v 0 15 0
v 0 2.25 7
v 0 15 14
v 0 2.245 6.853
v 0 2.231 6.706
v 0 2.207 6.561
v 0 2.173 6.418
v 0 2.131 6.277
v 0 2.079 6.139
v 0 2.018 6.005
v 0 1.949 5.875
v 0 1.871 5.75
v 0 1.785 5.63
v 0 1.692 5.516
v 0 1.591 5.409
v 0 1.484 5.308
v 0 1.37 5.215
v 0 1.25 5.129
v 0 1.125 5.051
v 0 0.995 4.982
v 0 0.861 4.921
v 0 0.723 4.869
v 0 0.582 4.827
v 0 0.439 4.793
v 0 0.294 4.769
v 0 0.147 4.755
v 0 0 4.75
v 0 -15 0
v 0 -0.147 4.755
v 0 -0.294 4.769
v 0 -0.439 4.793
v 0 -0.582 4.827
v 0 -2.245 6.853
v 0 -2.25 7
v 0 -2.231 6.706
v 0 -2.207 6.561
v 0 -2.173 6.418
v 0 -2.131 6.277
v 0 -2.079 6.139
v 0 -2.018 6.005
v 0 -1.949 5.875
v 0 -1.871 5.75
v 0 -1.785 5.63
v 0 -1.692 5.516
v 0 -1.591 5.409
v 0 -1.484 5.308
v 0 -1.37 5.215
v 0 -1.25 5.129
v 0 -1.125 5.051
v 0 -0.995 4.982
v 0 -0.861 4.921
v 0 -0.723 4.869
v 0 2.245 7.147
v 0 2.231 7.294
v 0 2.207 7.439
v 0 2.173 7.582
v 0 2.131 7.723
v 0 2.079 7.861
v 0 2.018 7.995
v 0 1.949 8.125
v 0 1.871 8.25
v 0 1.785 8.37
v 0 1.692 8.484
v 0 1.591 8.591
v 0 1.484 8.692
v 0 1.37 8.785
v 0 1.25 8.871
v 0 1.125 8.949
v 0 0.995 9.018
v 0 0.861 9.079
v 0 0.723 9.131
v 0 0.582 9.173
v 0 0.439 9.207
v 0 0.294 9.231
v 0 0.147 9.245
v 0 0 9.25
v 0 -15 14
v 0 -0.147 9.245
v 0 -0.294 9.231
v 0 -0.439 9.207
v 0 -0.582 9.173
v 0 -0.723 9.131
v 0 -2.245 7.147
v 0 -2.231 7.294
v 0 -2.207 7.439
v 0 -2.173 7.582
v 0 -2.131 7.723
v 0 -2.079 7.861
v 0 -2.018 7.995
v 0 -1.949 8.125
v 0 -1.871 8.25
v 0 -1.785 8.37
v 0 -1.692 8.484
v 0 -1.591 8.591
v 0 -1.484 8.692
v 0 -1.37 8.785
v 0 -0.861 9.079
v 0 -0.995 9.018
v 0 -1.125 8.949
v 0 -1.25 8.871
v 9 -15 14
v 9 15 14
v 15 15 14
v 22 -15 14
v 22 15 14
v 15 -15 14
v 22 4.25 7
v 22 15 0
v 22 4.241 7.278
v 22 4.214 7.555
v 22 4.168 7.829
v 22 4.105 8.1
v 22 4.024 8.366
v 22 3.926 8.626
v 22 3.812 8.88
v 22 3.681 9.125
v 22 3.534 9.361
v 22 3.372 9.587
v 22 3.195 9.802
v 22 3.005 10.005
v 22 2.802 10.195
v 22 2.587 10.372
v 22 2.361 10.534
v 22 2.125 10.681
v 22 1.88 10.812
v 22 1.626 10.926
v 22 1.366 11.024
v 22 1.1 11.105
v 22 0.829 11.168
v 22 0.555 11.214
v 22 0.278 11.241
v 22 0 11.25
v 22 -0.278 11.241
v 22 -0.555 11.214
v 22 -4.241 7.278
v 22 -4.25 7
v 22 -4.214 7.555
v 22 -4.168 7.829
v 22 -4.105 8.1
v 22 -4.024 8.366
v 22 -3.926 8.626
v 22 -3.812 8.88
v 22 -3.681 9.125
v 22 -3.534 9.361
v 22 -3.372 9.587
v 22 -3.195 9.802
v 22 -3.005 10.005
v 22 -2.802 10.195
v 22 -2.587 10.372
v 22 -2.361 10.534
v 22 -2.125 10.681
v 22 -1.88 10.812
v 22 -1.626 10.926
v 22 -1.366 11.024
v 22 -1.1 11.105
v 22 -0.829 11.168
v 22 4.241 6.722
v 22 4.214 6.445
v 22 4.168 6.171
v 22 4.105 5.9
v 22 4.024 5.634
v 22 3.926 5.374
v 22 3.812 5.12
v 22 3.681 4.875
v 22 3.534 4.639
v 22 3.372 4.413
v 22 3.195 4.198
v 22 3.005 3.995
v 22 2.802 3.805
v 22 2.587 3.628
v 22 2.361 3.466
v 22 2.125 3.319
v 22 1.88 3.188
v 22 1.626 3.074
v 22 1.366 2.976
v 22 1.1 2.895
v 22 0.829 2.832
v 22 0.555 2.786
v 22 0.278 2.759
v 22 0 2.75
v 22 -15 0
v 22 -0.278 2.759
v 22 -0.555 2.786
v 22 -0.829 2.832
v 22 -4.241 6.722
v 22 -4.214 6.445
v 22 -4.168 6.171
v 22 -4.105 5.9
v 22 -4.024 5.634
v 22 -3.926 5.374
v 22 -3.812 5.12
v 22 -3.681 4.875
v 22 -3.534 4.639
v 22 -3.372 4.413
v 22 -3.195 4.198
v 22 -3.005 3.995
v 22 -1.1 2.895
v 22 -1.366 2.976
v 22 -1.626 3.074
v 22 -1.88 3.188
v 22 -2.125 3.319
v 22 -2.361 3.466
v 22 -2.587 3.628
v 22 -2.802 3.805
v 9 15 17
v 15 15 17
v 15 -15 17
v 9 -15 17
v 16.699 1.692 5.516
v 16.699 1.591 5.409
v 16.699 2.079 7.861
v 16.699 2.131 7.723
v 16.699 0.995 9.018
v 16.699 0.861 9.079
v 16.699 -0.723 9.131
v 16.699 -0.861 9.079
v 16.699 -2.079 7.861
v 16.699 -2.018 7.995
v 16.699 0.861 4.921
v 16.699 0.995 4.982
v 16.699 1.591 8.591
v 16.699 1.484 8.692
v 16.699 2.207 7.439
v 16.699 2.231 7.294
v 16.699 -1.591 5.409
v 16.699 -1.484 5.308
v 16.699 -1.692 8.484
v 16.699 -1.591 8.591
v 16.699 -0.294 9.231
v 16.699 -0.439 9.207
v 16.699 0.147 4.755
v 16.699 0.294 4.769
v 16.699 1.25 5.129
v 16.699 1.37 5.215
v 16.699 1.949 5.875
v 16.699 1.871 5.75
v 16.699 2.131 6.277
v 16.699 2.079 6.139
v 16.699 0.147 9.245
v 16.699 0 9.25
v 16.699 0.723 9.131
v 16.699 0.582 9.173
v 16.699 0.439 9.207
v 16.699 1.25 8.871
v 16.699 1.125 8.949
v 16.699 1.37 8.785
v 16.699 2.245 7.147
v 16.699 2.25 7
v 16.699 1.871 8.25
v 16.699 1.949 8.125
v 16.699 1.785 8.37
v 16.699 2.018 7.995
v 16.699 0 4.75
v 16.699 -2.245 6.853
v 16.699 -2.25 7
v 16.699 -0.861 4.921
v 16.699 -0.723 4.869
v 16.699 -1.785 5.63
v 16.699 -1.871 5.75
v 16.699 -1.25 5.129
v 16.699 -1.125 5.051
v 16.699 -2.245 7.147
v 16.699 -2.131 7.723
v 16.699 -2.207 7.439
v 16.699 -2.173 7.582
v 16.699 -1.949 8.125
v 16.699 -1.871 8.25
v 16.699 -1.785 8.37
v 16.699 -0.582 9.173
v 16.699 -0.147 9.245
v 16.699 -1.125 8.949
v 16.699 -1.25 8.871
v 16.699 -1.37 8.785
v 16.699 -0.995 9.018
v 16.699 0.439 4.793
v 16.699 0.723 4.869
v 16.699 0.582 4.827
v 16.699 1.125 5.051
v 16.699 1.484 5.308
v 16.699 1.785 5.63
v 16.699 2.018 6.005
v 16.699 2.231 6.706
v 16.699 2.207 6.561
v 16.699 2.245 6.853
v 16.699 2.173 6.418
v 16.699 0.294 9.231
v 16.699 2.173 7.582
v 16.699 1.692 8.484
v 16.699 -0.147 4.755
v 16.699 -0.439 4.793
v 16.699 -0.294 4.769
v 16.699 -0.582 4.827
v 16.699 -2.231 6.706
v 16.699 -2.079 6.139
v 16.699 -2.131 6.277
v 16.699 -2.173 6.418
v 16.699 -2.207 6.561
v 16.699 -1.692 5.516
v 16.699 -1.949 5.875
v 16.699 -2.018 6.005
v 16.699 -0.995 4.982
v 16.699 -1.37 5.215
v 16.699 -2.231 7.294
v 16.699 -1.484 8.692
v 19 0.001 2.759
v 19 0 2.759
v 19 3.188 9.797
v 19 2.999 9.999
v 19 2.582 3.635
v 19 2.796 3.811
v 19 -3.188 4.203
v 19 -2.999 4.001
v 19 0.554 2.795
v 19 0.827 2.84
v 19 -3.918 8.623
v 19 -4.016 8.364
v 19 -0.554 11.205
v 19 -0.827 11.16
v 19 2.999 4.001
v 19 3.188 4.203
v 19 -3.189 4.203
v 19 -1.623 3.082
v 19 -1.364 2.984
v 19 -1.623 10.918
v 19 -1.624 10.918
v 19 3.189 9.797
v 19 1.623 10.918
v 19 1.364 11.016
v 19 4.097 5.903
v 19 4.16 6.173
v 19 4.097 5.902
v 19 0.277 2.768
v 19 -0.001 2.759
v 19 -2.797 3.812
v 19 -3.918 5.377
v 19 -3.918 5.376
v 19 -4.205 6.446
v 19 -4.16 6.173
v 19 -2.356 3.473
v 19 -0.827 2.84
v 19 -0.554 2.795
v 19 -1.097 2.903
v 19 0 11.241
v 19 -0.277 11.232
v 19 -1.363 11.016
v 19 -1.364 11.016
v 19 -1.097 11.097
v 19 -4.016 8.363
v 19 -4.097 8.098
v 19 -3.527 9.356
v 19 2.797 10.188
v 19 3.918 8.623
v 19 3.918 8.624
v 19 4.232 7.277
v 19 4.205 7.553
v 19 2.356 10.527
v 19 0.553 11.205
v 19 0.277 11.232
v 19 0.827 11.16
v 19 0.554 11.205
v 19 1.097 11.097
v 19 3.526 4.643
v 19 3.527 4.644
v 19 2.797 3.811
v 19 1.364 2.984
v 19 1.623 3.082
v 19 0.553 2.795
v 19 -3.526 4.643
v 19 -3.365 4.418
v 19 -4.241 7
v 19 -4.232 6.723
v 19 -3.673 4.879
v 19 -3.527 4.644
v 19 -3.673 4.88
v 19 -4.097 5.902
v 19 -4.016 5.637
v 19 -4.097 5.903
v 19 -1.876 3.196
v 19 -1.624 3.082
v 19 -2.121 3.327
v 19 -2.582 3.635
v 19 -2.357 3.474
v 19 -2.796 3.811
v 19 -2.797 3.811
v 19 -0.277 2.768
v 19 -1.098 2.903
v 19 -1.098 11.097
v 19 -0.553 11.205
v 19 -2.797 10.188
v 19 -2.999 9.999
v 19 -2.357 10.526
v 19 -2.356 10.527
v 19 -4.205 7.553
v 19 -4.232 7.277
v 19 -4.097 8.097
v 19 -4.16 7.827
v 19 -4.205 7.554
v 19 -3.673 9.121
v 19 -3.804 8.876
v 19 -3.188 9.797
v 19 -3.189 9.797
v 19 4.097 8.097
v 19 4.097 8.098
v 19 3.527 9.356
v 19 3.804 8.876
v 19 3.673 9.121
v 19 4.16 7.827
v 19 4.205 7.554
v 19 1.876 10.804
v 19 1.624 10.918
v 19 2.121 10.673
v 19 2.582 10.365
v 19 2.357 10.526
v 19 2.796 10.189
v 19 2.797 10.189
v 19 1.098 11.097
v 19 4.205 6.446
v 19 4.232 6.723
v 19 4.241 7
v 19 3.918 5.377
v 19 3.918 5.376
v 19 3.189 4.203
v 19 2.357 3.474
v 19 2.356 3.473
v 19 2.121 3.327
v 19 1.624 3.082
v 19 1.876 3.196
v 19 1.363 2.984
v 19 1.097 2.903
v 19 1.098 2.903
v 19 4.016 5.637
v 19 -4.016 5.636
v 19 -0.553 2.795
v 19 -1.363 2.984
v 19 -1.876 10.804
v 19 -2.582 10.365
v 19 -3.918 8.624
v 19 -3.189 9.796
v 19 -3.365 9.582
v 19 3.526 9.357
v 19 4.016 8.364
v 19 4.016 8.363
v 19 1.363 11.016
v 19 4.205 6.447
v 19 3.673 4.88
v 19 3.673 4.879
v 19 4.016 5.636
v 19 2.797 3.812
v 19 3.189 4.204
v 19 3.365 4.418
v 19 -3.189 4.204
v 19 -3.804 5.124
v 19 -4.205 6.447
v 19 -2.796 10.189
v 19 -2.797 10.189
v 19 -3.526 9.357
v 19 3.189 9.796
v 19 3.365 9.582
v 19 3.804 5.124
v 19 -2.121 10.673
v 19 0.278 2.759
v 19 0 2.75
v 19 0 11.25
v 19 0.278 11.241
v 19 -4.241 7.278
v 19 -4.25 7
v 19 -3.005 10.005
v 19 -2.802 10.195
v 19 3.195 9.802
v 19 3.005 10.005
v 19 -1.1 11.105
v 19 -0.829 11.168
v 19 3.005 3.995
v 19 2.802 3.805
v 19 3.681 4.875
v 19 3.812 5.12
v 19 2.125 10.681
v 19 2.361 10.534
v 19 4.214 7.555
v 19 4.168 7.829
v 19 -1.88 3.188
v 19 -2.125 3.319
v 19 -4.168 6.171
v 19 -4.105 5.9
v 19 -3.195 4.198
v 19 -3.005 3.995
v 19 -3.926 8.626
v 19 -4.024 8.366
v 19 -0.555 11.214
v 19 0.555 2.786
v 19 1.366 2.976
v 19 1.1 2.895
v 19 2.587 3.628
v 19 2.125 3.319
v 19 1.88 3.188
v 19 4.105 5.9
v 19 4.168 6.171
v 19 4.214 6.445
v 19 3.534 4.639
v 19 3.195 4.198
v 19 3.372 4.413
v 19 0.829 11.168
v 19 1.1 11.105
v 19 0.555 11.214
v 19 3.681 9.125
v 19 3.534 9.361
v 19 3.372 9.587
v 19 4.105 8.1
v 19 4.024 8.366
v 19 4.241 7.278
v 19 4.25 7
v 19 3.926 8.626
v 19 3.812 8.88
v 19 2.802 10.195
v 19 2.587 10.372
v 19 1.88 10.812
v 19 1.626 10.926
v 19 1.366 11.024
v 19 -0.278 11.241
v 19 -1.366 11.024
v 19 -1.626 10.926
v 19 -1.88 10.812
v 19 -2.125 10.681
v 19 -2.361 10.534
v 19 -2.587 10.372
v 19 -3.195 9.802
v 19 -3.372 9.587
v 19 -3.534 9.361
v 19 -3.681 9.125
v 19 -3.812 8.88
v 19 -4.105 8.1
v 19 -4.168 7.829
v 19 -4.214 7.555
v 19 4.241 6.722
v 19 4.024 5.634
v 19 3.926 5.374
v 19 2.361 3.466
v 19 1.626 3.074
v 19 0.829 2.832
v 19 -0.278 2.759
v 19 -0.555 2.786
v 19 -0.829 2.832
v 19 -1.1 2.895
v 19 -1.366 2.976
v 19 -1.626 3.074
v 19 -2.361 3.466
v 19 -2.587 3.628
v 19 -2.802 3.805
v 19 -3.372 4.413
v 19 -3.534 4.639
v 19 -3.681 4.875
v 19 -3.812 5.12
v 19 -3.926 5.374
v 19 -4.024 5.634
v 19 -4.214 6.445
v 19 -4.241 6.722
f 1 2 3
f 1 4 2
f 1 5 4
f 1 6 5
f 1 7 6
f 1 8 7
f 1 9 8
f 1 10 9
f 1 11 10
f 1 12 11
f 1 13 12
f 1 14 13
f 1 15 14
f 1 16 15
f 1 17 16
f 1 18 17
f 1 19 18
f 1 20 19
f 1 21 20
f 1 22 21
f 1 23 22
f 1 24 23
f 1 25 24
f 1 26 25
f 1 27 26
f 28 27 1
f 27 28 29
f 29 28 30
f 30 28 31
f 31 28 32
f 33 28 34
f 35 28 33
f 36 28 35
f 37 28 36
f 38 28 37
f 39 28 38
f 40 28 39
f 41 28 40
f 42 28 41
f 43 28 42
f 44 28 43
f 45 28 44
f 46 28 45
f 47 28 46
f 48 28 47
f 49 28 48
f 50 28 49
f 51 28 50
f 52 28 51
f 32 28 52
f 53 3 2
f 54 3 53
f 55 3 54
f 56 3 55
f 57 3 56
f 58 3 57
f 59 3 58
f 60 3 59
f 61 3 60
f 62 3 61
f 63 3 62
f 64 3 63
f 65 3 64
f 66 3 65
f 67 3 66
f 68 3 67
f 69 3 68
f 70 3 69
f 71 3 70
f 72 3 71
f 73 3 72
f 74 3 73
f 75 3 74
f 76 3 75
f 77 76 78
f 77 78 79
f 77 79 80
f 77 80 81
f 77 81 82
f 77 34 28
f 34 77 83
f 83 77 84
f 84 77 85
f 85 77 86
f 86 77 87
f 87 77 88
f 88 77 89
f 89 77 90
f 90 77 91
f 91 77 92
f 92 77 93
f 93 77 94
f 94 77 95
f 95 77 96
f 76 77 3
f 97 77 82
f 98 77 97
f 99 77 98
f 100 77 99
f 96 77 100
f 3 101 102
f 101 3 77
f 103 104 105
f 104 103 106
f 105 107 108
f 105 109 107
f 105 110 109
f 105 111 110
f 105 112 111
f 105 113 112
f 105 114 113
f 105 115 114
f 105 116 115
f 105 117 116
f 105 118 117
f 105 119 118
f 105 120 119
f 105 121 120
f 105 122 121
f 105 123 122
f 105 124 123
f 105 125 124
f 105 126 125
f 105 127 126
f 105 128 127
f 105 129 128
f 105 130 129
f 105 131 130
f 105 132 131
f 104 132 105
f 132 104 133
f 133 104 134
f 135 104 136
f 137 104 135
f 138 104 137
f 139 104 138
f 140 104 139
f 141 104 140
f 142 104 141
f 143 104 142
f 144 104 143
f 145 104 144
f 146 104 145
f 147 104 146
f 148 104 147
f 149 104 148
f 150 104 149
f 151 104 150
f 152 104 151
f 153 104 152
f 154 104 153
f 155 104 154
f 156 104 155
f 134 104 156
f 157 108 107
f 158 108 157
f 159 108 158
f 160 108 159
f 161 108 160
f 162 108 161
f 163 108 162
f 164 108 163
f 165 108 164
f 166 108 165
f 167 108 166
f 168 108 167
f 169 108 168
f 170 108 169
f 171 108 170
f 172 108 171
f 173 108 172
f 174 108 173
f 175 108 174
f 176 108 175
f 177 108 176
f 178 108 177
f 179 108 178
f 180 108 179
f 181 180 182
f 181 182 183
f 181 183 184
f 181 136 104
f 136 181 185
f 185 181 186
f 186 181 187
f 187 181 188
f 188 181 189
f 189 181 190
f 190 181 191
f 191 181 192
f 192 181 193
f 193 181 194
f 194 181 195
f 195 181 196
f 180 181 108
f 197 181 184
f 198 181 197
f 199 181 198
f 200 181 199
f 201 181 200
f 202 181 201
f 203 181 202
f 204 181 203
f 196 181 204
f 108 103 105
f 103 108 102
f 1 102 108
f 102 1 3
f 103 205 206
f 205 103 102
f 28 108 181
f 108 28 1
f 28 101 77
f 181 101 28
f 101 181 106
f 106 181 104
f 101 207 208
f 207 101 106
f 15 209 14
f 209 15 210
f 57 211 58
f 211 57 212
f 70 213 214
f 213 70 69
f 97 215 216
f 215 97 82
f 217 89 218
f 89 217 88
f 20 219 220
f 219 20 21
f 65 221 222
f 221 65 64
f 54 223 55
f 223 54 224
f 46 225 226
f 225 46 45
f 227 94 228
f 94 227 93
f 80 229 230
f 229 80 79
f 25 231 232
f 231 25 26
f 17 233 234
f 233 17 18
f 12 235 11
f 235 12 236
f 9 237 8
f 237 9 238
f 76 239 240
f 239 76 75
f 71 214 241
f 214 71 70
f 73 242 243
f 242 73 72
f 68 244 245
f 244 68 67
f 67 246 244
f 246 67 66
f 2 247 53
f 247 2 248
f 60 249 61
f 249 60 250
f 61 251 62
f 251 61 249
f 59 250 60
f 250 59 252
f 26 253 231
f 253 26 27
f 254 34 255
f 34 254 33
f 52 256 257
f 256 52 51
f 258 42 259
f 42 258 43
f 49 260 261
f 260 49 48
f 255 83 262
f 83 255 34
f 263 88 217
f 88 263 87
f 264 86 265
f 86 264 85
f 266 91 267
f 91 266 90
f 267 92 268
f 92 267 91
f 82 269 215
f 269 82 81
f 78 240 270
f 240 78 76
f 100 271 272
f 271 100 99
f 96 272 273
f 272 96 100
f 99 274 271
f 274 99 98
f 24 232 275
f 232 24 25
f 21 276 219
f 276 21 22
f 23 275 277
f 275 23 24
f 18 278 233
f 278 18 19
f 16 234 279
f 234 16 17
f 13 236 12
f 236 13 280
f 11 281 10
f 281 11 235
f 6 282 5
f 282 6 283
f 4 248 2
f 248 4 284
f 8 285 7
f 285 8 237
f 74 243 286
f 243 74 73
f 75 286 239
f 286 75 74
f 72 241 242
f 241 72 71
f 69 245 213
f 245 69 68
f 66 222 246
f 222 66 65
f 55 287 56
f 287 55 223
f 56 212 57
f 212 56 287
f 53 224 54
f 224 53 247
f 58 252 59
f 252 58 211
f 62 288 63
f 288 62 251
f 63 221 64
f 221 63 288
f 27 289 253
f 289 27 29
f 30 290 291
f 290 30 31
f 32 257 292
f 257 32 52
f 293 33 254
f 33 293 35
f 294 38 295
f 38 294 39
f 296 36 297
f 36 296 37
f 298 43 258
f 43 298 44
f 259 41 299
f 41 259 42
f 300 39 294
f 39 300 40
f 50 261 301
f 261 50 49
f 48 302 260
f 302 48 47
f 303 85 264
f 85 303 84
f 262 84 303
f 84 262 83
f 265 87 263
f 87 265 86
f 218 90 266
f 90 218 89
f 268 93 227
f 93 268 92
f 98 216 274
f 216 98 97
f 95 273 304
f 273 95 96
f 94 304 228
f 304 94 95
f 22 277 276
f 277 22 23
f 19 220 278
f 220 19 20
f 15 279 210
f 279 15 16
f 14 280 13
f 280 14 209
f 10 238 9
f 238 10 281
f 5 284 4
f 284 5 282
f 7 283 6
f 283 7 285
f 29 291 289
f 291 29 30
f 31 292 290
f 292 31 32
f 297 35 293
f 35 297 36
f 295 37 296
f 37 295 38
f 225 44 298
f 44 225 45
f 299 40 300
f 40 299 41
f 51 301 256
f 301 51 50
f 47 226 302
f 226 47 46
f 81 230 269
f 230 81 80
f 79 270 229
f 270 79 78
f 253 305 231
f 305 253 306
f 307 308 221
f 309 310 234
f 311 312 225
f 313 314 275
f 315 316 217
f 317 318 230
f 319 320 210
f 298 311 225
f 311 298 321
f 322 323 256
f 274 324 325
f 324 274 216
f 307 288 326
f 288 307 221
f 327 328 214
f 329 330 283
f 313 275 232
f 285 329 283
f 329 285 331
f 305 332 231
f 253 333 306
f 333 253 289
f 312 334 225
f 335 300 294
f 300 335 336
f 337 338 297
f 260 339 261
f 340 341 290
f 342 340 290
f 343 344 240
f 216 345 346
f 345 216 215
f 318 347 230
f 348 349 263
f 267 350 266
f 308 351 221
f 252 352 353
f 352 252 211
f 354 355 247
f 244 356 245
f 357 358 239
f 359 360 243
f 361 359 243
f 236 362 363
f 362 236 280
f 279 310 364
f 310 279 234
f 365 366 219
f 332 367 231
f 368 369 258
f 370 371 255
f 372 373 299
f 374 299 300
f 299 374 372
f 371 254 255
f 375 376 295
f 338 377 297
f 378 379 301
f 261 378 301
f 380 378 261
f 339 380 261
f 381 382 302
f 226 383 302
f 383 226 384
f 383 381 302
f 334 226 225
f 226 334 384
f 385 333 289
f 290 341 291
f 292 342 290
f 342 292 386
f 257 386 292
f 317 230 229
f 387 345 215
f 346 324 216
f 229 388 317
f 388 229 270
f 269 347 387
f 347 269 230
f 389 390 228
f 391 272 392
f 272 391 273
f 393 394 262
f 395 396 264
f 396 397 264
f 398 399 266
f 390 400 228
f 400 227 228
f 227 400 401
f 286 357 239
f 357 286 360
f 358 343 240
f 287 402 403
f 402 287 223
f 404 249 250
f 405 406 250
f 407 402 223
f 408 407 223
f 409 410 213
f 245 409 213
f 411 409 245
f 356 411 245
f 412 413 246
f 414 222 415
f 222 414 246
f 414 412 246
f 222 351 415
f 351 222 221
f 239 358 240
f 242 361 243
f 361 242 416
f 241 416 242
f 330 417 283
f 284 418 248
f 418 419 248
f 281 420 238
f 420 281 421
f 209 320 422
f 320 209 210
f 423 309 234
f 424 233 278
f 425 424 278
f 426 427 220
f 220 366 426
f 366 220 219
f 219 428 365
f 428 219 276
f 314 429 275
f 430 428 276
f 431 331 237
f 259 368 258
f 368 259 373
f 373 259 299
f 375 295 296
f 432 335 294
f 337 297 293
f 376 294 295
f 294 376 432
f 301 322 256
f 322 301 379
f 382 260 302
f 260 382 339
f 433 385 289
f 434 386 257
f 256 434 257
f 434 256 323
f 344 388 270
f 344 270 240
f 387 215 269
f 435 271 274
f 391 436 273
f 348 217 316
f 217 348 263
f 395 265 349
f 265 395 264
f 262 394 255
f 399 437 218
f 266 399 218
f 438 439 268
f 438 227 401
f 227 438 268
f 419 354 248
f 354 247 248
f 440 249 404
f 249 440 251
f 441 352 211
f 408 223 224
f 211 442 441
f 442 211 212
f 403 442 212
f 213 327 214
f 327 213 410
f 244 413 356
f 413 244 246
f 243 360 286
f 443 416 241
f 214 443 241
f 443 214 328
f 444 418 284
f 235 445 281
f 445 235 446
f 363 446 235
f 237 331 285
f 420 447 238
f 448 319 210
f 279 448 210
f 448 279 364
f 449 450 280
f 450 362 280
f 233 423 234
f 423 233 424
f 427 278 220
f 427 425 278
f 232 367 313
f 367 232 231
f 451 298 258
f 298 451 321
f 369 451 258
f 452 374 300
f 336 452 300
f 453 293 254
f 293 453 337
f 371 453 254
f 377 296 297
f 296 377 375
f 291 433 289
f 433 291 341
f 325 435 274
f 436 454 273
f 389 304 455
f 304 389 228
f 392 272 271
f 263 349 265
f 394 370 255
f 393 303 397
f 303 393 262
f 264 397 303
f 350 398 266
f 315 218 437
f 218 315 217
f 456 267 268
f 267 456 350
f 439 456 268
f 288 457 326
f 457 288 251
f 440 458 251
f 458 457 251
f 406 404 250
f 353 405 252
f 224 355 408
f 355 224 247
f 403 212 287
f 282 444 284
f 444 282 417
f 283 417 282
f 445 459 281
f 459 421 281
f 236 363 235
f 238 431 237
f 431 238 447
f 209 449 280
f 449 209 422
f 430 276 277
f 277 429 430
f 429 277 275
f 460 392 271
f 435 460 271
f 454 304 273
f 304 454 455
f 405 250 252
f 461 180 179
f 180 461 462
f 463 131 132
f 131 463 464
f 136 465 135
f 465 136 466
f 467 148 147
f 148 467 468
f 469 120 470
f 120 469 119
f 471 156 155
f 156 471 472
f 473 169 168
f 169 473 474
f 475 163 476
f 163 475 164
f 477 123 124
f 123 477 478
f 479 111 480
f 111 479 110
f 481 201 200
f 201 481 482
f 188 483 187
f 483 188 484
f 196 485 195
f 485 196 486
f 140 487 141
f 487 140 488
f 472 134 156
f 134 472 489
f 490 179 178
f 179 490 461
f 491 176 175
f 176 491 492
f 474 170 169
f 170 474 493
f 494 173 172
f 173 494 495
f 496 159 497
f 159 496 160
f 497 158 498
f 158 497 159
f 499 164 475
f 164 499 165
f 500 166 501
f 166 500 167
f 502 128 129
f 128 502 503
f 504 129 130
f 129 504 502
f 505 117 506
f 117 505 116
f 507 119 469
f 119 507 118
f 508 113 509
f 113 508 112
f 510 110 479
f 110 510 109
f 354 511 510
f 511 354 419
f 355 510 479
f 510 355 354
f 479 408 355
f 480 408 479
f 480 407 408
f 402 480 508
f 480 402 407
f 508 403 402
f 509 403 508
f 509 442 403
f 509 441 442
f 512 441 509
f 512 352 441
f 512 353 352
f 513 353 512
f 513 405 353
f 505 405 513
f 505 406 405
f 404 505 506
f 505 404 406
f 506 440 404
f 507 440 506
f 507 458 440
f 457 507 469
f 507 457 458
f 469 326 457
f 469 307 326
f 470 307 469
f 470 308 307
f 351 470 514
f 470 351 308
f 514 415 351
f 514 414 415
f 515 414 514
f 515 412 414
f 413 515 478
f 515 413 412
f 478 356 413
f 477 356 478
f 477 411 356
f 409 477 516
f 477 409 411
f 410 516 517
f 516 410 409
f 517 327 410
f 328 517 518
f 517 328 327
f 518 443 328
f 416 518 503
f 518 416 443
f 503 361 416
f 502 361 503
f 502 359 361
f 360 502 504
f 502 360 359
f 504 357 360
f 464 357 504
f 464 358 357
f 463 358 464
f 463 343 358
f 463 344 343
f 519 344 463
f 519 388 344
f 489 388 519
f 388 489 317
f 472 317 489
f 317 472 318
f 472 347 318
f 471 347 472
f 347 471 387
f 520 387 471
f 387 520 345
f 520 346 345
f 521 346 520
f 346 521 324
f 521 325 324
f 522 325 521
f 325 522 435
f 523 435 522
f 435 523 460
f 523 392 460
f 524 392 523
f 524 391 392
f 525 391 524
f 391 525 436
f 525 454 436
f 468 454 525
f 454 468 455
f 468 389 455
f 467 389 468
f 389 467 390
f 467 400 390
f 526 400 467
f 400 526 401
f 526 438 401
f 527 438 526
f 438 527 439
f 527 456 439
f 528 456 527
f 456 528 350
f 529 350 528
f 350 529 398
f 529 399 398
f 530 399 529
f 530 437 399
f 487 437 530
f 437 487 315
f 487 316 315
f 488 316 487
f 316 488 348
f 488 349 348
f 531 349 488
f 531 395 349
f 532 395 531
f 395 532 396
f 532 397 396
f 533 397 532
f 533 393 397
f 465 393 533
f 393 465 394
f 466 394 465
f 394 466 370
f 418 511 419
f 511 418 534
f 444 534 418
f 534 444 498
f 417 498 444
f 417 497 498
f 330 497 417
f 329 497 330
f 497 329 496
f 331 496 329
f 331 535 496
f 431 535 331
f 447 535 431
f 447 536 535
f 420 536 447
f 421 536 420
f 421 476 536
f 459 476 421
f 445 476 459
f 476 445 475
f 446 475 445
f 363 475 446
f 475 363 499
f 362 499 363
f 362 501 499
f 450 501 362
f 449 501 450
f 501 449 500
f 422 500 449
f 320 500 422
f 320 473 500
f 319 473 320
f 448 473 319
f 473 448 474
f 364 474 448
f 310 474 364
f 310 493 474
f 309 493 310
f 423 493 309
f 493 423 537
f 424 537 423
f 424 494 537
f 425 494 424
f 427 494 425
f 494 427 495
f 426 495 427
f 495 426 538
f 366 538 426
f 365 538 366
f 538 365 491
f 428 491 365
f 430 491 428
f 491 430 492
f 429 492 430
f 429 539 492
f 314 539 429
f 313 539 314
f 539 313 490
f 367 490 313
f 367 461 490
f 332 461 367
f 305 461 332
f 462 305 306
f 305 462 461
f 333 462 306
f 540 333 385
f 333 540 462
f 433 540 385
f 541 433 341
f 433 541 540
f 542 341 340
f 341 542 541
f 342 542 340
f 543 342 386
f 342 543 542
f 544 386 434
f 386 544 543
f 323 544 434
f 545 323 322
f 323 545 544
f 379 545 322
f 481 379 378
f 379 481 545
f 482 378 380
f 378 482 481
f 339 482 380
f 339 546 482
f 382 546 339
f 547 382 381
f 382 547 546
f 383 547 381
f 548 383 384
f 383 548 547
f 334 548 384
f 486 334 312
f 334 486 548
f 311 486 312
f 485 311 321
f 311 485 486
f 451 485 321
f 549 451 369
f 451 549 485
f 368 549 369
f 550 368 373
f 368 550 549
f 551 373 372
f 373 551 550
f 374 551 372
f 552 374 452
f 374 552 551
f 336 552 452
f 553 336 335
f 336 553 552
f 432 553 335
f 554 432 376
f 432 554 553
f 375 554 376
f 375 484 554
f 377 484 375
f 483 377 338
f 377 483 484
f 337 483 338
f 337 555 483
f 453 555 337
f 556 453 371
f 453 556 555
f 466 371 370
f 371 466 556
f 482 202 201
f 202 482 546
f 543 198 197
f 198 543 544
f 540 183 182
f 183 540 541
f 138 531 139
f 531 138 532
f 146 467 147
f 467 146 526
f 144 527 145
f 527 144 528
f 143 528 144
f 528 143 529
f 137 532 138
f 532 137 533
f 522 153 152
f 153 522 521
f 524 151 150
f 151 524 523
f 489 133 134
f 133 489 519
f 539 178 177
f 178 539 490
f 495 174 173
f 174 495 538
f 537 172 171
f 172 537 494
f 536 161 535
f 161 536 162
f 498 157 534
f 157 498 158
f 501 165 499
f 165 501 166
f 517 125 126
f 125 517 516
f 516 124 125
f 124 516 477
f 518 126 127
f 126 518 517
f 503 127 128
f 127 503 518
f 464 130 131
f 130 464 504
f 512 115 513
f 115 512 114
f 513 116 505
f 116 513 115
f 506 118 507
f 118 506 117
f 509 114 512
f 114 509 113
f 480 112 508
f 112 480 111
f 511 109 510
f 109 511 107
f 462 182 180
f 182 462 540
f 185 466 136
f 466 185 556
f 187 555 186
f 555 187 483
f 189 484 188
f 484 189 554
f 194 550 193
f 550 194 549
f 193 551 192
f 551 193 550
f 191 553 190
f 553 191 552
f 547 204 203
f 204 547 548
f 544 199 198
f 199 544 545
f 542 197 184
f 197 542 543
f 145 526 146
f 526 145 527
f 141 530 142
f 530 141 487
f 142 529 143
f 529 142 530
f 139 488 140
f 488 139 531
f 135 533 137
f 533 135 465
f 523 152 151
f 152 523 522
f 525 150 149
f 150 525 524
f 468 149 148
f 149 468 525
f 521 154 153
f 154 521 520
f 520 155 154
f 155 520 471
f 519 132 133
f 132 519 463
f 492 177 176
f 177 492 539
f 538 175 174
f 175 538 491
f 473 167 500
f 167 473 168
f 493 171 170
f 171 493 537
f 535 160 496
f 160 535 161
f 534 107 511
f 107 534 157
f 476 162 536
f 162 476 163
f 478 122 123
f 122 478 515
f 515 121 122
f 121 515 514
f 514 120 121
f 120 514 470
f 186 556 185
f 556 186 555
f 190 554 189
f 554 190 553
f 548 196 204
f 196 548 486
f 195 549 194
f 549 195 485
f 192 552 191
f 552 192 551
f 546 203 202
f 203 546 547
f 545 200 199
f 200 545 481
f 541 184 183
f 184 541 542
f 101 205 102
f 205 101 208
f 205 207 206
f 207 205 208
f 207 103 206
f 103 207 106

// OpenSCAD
// Simple block with a counterbored through-hole for a #8 screw.
// Units: mm.
//
// Hole is centered on the yz face (x = 0 / x = depth) and runs through
// along x. Counterbore opens from the +x face so the screw head seats
// flush; shank clearance continues through to the -x face.

// ---- Block ----
depth  = 22;   // x
width  = 30;   // y
height = 14;   // z

// ---- #8 screw (flat/bugle head, like a drywall screw) ----
shank_dia       = 4.5;   // #8 shank ~4.2 mm + clearance
head_dia        = 8.5;   // #8 flat head ~8.2 mm + clearance
// 82° included angle is the US standard for flathead wood screws.
// Countersink depth = (head_dia - shank_dia) / 2 / tan(41°) ≈ 2.30 mm.
countersink_angle = 82;
countersink_depth = (head_dia - shank_dia) / 2 / tan(countersink_angle / 2);

// Straight cylindrical recess above the countersink, sized to accept a
// plug that hides the screw head.
plug_recess_depth = 3;

// ---- Slot on top (xy plane) ----
// Protrudes upward from the top face. Spans the full width (y).
slot_from_back  = 9;   // gap from -x face (back) to slot
slot_thickness  = 6;   // along x — derived: 22 - 9 - 7
slot_from_front = 7;   // gap from slot to +x face (front)
slot_height     = 3;   // along z

$fn = 96;

module screw_block() {
    difference() {
        translate([0, -width/2, 0])
            cube([depth, width, height]);

        // Through-hole for shank, along x
        translate([-0.01, 0, height/2])
            rotate([0, 90, 0])
                cylinder(h = depth + 0.02, d = shank_dia);

        // Countersink cone, sunk plug_recess_depth below the +x face so
        // a flat plug at head_dia can sit above it.
        translate([depth - plug_recess_depth - countersink_depth, 0, height/2])
            rotate([0, 90, 0])
                cylinder(h = countersink_depth + 0.01,
                         d1 = shank_dia, d2 = head_dia);

        // Plug recess: straight cylinder at head_dia from +x face inward.
        translate([depth - plug_recess_depth, 0, height/2])
            rotate([0, 90, 0])
                cylinder(h = plug_recess_depth + 0.01, d = head_dia);
    }

    // Slot protruding above the top face
    translate([slot_from_back, -width/2, height])
        cube([slot_thickness, width, slot_height]);
}

screw_block();
